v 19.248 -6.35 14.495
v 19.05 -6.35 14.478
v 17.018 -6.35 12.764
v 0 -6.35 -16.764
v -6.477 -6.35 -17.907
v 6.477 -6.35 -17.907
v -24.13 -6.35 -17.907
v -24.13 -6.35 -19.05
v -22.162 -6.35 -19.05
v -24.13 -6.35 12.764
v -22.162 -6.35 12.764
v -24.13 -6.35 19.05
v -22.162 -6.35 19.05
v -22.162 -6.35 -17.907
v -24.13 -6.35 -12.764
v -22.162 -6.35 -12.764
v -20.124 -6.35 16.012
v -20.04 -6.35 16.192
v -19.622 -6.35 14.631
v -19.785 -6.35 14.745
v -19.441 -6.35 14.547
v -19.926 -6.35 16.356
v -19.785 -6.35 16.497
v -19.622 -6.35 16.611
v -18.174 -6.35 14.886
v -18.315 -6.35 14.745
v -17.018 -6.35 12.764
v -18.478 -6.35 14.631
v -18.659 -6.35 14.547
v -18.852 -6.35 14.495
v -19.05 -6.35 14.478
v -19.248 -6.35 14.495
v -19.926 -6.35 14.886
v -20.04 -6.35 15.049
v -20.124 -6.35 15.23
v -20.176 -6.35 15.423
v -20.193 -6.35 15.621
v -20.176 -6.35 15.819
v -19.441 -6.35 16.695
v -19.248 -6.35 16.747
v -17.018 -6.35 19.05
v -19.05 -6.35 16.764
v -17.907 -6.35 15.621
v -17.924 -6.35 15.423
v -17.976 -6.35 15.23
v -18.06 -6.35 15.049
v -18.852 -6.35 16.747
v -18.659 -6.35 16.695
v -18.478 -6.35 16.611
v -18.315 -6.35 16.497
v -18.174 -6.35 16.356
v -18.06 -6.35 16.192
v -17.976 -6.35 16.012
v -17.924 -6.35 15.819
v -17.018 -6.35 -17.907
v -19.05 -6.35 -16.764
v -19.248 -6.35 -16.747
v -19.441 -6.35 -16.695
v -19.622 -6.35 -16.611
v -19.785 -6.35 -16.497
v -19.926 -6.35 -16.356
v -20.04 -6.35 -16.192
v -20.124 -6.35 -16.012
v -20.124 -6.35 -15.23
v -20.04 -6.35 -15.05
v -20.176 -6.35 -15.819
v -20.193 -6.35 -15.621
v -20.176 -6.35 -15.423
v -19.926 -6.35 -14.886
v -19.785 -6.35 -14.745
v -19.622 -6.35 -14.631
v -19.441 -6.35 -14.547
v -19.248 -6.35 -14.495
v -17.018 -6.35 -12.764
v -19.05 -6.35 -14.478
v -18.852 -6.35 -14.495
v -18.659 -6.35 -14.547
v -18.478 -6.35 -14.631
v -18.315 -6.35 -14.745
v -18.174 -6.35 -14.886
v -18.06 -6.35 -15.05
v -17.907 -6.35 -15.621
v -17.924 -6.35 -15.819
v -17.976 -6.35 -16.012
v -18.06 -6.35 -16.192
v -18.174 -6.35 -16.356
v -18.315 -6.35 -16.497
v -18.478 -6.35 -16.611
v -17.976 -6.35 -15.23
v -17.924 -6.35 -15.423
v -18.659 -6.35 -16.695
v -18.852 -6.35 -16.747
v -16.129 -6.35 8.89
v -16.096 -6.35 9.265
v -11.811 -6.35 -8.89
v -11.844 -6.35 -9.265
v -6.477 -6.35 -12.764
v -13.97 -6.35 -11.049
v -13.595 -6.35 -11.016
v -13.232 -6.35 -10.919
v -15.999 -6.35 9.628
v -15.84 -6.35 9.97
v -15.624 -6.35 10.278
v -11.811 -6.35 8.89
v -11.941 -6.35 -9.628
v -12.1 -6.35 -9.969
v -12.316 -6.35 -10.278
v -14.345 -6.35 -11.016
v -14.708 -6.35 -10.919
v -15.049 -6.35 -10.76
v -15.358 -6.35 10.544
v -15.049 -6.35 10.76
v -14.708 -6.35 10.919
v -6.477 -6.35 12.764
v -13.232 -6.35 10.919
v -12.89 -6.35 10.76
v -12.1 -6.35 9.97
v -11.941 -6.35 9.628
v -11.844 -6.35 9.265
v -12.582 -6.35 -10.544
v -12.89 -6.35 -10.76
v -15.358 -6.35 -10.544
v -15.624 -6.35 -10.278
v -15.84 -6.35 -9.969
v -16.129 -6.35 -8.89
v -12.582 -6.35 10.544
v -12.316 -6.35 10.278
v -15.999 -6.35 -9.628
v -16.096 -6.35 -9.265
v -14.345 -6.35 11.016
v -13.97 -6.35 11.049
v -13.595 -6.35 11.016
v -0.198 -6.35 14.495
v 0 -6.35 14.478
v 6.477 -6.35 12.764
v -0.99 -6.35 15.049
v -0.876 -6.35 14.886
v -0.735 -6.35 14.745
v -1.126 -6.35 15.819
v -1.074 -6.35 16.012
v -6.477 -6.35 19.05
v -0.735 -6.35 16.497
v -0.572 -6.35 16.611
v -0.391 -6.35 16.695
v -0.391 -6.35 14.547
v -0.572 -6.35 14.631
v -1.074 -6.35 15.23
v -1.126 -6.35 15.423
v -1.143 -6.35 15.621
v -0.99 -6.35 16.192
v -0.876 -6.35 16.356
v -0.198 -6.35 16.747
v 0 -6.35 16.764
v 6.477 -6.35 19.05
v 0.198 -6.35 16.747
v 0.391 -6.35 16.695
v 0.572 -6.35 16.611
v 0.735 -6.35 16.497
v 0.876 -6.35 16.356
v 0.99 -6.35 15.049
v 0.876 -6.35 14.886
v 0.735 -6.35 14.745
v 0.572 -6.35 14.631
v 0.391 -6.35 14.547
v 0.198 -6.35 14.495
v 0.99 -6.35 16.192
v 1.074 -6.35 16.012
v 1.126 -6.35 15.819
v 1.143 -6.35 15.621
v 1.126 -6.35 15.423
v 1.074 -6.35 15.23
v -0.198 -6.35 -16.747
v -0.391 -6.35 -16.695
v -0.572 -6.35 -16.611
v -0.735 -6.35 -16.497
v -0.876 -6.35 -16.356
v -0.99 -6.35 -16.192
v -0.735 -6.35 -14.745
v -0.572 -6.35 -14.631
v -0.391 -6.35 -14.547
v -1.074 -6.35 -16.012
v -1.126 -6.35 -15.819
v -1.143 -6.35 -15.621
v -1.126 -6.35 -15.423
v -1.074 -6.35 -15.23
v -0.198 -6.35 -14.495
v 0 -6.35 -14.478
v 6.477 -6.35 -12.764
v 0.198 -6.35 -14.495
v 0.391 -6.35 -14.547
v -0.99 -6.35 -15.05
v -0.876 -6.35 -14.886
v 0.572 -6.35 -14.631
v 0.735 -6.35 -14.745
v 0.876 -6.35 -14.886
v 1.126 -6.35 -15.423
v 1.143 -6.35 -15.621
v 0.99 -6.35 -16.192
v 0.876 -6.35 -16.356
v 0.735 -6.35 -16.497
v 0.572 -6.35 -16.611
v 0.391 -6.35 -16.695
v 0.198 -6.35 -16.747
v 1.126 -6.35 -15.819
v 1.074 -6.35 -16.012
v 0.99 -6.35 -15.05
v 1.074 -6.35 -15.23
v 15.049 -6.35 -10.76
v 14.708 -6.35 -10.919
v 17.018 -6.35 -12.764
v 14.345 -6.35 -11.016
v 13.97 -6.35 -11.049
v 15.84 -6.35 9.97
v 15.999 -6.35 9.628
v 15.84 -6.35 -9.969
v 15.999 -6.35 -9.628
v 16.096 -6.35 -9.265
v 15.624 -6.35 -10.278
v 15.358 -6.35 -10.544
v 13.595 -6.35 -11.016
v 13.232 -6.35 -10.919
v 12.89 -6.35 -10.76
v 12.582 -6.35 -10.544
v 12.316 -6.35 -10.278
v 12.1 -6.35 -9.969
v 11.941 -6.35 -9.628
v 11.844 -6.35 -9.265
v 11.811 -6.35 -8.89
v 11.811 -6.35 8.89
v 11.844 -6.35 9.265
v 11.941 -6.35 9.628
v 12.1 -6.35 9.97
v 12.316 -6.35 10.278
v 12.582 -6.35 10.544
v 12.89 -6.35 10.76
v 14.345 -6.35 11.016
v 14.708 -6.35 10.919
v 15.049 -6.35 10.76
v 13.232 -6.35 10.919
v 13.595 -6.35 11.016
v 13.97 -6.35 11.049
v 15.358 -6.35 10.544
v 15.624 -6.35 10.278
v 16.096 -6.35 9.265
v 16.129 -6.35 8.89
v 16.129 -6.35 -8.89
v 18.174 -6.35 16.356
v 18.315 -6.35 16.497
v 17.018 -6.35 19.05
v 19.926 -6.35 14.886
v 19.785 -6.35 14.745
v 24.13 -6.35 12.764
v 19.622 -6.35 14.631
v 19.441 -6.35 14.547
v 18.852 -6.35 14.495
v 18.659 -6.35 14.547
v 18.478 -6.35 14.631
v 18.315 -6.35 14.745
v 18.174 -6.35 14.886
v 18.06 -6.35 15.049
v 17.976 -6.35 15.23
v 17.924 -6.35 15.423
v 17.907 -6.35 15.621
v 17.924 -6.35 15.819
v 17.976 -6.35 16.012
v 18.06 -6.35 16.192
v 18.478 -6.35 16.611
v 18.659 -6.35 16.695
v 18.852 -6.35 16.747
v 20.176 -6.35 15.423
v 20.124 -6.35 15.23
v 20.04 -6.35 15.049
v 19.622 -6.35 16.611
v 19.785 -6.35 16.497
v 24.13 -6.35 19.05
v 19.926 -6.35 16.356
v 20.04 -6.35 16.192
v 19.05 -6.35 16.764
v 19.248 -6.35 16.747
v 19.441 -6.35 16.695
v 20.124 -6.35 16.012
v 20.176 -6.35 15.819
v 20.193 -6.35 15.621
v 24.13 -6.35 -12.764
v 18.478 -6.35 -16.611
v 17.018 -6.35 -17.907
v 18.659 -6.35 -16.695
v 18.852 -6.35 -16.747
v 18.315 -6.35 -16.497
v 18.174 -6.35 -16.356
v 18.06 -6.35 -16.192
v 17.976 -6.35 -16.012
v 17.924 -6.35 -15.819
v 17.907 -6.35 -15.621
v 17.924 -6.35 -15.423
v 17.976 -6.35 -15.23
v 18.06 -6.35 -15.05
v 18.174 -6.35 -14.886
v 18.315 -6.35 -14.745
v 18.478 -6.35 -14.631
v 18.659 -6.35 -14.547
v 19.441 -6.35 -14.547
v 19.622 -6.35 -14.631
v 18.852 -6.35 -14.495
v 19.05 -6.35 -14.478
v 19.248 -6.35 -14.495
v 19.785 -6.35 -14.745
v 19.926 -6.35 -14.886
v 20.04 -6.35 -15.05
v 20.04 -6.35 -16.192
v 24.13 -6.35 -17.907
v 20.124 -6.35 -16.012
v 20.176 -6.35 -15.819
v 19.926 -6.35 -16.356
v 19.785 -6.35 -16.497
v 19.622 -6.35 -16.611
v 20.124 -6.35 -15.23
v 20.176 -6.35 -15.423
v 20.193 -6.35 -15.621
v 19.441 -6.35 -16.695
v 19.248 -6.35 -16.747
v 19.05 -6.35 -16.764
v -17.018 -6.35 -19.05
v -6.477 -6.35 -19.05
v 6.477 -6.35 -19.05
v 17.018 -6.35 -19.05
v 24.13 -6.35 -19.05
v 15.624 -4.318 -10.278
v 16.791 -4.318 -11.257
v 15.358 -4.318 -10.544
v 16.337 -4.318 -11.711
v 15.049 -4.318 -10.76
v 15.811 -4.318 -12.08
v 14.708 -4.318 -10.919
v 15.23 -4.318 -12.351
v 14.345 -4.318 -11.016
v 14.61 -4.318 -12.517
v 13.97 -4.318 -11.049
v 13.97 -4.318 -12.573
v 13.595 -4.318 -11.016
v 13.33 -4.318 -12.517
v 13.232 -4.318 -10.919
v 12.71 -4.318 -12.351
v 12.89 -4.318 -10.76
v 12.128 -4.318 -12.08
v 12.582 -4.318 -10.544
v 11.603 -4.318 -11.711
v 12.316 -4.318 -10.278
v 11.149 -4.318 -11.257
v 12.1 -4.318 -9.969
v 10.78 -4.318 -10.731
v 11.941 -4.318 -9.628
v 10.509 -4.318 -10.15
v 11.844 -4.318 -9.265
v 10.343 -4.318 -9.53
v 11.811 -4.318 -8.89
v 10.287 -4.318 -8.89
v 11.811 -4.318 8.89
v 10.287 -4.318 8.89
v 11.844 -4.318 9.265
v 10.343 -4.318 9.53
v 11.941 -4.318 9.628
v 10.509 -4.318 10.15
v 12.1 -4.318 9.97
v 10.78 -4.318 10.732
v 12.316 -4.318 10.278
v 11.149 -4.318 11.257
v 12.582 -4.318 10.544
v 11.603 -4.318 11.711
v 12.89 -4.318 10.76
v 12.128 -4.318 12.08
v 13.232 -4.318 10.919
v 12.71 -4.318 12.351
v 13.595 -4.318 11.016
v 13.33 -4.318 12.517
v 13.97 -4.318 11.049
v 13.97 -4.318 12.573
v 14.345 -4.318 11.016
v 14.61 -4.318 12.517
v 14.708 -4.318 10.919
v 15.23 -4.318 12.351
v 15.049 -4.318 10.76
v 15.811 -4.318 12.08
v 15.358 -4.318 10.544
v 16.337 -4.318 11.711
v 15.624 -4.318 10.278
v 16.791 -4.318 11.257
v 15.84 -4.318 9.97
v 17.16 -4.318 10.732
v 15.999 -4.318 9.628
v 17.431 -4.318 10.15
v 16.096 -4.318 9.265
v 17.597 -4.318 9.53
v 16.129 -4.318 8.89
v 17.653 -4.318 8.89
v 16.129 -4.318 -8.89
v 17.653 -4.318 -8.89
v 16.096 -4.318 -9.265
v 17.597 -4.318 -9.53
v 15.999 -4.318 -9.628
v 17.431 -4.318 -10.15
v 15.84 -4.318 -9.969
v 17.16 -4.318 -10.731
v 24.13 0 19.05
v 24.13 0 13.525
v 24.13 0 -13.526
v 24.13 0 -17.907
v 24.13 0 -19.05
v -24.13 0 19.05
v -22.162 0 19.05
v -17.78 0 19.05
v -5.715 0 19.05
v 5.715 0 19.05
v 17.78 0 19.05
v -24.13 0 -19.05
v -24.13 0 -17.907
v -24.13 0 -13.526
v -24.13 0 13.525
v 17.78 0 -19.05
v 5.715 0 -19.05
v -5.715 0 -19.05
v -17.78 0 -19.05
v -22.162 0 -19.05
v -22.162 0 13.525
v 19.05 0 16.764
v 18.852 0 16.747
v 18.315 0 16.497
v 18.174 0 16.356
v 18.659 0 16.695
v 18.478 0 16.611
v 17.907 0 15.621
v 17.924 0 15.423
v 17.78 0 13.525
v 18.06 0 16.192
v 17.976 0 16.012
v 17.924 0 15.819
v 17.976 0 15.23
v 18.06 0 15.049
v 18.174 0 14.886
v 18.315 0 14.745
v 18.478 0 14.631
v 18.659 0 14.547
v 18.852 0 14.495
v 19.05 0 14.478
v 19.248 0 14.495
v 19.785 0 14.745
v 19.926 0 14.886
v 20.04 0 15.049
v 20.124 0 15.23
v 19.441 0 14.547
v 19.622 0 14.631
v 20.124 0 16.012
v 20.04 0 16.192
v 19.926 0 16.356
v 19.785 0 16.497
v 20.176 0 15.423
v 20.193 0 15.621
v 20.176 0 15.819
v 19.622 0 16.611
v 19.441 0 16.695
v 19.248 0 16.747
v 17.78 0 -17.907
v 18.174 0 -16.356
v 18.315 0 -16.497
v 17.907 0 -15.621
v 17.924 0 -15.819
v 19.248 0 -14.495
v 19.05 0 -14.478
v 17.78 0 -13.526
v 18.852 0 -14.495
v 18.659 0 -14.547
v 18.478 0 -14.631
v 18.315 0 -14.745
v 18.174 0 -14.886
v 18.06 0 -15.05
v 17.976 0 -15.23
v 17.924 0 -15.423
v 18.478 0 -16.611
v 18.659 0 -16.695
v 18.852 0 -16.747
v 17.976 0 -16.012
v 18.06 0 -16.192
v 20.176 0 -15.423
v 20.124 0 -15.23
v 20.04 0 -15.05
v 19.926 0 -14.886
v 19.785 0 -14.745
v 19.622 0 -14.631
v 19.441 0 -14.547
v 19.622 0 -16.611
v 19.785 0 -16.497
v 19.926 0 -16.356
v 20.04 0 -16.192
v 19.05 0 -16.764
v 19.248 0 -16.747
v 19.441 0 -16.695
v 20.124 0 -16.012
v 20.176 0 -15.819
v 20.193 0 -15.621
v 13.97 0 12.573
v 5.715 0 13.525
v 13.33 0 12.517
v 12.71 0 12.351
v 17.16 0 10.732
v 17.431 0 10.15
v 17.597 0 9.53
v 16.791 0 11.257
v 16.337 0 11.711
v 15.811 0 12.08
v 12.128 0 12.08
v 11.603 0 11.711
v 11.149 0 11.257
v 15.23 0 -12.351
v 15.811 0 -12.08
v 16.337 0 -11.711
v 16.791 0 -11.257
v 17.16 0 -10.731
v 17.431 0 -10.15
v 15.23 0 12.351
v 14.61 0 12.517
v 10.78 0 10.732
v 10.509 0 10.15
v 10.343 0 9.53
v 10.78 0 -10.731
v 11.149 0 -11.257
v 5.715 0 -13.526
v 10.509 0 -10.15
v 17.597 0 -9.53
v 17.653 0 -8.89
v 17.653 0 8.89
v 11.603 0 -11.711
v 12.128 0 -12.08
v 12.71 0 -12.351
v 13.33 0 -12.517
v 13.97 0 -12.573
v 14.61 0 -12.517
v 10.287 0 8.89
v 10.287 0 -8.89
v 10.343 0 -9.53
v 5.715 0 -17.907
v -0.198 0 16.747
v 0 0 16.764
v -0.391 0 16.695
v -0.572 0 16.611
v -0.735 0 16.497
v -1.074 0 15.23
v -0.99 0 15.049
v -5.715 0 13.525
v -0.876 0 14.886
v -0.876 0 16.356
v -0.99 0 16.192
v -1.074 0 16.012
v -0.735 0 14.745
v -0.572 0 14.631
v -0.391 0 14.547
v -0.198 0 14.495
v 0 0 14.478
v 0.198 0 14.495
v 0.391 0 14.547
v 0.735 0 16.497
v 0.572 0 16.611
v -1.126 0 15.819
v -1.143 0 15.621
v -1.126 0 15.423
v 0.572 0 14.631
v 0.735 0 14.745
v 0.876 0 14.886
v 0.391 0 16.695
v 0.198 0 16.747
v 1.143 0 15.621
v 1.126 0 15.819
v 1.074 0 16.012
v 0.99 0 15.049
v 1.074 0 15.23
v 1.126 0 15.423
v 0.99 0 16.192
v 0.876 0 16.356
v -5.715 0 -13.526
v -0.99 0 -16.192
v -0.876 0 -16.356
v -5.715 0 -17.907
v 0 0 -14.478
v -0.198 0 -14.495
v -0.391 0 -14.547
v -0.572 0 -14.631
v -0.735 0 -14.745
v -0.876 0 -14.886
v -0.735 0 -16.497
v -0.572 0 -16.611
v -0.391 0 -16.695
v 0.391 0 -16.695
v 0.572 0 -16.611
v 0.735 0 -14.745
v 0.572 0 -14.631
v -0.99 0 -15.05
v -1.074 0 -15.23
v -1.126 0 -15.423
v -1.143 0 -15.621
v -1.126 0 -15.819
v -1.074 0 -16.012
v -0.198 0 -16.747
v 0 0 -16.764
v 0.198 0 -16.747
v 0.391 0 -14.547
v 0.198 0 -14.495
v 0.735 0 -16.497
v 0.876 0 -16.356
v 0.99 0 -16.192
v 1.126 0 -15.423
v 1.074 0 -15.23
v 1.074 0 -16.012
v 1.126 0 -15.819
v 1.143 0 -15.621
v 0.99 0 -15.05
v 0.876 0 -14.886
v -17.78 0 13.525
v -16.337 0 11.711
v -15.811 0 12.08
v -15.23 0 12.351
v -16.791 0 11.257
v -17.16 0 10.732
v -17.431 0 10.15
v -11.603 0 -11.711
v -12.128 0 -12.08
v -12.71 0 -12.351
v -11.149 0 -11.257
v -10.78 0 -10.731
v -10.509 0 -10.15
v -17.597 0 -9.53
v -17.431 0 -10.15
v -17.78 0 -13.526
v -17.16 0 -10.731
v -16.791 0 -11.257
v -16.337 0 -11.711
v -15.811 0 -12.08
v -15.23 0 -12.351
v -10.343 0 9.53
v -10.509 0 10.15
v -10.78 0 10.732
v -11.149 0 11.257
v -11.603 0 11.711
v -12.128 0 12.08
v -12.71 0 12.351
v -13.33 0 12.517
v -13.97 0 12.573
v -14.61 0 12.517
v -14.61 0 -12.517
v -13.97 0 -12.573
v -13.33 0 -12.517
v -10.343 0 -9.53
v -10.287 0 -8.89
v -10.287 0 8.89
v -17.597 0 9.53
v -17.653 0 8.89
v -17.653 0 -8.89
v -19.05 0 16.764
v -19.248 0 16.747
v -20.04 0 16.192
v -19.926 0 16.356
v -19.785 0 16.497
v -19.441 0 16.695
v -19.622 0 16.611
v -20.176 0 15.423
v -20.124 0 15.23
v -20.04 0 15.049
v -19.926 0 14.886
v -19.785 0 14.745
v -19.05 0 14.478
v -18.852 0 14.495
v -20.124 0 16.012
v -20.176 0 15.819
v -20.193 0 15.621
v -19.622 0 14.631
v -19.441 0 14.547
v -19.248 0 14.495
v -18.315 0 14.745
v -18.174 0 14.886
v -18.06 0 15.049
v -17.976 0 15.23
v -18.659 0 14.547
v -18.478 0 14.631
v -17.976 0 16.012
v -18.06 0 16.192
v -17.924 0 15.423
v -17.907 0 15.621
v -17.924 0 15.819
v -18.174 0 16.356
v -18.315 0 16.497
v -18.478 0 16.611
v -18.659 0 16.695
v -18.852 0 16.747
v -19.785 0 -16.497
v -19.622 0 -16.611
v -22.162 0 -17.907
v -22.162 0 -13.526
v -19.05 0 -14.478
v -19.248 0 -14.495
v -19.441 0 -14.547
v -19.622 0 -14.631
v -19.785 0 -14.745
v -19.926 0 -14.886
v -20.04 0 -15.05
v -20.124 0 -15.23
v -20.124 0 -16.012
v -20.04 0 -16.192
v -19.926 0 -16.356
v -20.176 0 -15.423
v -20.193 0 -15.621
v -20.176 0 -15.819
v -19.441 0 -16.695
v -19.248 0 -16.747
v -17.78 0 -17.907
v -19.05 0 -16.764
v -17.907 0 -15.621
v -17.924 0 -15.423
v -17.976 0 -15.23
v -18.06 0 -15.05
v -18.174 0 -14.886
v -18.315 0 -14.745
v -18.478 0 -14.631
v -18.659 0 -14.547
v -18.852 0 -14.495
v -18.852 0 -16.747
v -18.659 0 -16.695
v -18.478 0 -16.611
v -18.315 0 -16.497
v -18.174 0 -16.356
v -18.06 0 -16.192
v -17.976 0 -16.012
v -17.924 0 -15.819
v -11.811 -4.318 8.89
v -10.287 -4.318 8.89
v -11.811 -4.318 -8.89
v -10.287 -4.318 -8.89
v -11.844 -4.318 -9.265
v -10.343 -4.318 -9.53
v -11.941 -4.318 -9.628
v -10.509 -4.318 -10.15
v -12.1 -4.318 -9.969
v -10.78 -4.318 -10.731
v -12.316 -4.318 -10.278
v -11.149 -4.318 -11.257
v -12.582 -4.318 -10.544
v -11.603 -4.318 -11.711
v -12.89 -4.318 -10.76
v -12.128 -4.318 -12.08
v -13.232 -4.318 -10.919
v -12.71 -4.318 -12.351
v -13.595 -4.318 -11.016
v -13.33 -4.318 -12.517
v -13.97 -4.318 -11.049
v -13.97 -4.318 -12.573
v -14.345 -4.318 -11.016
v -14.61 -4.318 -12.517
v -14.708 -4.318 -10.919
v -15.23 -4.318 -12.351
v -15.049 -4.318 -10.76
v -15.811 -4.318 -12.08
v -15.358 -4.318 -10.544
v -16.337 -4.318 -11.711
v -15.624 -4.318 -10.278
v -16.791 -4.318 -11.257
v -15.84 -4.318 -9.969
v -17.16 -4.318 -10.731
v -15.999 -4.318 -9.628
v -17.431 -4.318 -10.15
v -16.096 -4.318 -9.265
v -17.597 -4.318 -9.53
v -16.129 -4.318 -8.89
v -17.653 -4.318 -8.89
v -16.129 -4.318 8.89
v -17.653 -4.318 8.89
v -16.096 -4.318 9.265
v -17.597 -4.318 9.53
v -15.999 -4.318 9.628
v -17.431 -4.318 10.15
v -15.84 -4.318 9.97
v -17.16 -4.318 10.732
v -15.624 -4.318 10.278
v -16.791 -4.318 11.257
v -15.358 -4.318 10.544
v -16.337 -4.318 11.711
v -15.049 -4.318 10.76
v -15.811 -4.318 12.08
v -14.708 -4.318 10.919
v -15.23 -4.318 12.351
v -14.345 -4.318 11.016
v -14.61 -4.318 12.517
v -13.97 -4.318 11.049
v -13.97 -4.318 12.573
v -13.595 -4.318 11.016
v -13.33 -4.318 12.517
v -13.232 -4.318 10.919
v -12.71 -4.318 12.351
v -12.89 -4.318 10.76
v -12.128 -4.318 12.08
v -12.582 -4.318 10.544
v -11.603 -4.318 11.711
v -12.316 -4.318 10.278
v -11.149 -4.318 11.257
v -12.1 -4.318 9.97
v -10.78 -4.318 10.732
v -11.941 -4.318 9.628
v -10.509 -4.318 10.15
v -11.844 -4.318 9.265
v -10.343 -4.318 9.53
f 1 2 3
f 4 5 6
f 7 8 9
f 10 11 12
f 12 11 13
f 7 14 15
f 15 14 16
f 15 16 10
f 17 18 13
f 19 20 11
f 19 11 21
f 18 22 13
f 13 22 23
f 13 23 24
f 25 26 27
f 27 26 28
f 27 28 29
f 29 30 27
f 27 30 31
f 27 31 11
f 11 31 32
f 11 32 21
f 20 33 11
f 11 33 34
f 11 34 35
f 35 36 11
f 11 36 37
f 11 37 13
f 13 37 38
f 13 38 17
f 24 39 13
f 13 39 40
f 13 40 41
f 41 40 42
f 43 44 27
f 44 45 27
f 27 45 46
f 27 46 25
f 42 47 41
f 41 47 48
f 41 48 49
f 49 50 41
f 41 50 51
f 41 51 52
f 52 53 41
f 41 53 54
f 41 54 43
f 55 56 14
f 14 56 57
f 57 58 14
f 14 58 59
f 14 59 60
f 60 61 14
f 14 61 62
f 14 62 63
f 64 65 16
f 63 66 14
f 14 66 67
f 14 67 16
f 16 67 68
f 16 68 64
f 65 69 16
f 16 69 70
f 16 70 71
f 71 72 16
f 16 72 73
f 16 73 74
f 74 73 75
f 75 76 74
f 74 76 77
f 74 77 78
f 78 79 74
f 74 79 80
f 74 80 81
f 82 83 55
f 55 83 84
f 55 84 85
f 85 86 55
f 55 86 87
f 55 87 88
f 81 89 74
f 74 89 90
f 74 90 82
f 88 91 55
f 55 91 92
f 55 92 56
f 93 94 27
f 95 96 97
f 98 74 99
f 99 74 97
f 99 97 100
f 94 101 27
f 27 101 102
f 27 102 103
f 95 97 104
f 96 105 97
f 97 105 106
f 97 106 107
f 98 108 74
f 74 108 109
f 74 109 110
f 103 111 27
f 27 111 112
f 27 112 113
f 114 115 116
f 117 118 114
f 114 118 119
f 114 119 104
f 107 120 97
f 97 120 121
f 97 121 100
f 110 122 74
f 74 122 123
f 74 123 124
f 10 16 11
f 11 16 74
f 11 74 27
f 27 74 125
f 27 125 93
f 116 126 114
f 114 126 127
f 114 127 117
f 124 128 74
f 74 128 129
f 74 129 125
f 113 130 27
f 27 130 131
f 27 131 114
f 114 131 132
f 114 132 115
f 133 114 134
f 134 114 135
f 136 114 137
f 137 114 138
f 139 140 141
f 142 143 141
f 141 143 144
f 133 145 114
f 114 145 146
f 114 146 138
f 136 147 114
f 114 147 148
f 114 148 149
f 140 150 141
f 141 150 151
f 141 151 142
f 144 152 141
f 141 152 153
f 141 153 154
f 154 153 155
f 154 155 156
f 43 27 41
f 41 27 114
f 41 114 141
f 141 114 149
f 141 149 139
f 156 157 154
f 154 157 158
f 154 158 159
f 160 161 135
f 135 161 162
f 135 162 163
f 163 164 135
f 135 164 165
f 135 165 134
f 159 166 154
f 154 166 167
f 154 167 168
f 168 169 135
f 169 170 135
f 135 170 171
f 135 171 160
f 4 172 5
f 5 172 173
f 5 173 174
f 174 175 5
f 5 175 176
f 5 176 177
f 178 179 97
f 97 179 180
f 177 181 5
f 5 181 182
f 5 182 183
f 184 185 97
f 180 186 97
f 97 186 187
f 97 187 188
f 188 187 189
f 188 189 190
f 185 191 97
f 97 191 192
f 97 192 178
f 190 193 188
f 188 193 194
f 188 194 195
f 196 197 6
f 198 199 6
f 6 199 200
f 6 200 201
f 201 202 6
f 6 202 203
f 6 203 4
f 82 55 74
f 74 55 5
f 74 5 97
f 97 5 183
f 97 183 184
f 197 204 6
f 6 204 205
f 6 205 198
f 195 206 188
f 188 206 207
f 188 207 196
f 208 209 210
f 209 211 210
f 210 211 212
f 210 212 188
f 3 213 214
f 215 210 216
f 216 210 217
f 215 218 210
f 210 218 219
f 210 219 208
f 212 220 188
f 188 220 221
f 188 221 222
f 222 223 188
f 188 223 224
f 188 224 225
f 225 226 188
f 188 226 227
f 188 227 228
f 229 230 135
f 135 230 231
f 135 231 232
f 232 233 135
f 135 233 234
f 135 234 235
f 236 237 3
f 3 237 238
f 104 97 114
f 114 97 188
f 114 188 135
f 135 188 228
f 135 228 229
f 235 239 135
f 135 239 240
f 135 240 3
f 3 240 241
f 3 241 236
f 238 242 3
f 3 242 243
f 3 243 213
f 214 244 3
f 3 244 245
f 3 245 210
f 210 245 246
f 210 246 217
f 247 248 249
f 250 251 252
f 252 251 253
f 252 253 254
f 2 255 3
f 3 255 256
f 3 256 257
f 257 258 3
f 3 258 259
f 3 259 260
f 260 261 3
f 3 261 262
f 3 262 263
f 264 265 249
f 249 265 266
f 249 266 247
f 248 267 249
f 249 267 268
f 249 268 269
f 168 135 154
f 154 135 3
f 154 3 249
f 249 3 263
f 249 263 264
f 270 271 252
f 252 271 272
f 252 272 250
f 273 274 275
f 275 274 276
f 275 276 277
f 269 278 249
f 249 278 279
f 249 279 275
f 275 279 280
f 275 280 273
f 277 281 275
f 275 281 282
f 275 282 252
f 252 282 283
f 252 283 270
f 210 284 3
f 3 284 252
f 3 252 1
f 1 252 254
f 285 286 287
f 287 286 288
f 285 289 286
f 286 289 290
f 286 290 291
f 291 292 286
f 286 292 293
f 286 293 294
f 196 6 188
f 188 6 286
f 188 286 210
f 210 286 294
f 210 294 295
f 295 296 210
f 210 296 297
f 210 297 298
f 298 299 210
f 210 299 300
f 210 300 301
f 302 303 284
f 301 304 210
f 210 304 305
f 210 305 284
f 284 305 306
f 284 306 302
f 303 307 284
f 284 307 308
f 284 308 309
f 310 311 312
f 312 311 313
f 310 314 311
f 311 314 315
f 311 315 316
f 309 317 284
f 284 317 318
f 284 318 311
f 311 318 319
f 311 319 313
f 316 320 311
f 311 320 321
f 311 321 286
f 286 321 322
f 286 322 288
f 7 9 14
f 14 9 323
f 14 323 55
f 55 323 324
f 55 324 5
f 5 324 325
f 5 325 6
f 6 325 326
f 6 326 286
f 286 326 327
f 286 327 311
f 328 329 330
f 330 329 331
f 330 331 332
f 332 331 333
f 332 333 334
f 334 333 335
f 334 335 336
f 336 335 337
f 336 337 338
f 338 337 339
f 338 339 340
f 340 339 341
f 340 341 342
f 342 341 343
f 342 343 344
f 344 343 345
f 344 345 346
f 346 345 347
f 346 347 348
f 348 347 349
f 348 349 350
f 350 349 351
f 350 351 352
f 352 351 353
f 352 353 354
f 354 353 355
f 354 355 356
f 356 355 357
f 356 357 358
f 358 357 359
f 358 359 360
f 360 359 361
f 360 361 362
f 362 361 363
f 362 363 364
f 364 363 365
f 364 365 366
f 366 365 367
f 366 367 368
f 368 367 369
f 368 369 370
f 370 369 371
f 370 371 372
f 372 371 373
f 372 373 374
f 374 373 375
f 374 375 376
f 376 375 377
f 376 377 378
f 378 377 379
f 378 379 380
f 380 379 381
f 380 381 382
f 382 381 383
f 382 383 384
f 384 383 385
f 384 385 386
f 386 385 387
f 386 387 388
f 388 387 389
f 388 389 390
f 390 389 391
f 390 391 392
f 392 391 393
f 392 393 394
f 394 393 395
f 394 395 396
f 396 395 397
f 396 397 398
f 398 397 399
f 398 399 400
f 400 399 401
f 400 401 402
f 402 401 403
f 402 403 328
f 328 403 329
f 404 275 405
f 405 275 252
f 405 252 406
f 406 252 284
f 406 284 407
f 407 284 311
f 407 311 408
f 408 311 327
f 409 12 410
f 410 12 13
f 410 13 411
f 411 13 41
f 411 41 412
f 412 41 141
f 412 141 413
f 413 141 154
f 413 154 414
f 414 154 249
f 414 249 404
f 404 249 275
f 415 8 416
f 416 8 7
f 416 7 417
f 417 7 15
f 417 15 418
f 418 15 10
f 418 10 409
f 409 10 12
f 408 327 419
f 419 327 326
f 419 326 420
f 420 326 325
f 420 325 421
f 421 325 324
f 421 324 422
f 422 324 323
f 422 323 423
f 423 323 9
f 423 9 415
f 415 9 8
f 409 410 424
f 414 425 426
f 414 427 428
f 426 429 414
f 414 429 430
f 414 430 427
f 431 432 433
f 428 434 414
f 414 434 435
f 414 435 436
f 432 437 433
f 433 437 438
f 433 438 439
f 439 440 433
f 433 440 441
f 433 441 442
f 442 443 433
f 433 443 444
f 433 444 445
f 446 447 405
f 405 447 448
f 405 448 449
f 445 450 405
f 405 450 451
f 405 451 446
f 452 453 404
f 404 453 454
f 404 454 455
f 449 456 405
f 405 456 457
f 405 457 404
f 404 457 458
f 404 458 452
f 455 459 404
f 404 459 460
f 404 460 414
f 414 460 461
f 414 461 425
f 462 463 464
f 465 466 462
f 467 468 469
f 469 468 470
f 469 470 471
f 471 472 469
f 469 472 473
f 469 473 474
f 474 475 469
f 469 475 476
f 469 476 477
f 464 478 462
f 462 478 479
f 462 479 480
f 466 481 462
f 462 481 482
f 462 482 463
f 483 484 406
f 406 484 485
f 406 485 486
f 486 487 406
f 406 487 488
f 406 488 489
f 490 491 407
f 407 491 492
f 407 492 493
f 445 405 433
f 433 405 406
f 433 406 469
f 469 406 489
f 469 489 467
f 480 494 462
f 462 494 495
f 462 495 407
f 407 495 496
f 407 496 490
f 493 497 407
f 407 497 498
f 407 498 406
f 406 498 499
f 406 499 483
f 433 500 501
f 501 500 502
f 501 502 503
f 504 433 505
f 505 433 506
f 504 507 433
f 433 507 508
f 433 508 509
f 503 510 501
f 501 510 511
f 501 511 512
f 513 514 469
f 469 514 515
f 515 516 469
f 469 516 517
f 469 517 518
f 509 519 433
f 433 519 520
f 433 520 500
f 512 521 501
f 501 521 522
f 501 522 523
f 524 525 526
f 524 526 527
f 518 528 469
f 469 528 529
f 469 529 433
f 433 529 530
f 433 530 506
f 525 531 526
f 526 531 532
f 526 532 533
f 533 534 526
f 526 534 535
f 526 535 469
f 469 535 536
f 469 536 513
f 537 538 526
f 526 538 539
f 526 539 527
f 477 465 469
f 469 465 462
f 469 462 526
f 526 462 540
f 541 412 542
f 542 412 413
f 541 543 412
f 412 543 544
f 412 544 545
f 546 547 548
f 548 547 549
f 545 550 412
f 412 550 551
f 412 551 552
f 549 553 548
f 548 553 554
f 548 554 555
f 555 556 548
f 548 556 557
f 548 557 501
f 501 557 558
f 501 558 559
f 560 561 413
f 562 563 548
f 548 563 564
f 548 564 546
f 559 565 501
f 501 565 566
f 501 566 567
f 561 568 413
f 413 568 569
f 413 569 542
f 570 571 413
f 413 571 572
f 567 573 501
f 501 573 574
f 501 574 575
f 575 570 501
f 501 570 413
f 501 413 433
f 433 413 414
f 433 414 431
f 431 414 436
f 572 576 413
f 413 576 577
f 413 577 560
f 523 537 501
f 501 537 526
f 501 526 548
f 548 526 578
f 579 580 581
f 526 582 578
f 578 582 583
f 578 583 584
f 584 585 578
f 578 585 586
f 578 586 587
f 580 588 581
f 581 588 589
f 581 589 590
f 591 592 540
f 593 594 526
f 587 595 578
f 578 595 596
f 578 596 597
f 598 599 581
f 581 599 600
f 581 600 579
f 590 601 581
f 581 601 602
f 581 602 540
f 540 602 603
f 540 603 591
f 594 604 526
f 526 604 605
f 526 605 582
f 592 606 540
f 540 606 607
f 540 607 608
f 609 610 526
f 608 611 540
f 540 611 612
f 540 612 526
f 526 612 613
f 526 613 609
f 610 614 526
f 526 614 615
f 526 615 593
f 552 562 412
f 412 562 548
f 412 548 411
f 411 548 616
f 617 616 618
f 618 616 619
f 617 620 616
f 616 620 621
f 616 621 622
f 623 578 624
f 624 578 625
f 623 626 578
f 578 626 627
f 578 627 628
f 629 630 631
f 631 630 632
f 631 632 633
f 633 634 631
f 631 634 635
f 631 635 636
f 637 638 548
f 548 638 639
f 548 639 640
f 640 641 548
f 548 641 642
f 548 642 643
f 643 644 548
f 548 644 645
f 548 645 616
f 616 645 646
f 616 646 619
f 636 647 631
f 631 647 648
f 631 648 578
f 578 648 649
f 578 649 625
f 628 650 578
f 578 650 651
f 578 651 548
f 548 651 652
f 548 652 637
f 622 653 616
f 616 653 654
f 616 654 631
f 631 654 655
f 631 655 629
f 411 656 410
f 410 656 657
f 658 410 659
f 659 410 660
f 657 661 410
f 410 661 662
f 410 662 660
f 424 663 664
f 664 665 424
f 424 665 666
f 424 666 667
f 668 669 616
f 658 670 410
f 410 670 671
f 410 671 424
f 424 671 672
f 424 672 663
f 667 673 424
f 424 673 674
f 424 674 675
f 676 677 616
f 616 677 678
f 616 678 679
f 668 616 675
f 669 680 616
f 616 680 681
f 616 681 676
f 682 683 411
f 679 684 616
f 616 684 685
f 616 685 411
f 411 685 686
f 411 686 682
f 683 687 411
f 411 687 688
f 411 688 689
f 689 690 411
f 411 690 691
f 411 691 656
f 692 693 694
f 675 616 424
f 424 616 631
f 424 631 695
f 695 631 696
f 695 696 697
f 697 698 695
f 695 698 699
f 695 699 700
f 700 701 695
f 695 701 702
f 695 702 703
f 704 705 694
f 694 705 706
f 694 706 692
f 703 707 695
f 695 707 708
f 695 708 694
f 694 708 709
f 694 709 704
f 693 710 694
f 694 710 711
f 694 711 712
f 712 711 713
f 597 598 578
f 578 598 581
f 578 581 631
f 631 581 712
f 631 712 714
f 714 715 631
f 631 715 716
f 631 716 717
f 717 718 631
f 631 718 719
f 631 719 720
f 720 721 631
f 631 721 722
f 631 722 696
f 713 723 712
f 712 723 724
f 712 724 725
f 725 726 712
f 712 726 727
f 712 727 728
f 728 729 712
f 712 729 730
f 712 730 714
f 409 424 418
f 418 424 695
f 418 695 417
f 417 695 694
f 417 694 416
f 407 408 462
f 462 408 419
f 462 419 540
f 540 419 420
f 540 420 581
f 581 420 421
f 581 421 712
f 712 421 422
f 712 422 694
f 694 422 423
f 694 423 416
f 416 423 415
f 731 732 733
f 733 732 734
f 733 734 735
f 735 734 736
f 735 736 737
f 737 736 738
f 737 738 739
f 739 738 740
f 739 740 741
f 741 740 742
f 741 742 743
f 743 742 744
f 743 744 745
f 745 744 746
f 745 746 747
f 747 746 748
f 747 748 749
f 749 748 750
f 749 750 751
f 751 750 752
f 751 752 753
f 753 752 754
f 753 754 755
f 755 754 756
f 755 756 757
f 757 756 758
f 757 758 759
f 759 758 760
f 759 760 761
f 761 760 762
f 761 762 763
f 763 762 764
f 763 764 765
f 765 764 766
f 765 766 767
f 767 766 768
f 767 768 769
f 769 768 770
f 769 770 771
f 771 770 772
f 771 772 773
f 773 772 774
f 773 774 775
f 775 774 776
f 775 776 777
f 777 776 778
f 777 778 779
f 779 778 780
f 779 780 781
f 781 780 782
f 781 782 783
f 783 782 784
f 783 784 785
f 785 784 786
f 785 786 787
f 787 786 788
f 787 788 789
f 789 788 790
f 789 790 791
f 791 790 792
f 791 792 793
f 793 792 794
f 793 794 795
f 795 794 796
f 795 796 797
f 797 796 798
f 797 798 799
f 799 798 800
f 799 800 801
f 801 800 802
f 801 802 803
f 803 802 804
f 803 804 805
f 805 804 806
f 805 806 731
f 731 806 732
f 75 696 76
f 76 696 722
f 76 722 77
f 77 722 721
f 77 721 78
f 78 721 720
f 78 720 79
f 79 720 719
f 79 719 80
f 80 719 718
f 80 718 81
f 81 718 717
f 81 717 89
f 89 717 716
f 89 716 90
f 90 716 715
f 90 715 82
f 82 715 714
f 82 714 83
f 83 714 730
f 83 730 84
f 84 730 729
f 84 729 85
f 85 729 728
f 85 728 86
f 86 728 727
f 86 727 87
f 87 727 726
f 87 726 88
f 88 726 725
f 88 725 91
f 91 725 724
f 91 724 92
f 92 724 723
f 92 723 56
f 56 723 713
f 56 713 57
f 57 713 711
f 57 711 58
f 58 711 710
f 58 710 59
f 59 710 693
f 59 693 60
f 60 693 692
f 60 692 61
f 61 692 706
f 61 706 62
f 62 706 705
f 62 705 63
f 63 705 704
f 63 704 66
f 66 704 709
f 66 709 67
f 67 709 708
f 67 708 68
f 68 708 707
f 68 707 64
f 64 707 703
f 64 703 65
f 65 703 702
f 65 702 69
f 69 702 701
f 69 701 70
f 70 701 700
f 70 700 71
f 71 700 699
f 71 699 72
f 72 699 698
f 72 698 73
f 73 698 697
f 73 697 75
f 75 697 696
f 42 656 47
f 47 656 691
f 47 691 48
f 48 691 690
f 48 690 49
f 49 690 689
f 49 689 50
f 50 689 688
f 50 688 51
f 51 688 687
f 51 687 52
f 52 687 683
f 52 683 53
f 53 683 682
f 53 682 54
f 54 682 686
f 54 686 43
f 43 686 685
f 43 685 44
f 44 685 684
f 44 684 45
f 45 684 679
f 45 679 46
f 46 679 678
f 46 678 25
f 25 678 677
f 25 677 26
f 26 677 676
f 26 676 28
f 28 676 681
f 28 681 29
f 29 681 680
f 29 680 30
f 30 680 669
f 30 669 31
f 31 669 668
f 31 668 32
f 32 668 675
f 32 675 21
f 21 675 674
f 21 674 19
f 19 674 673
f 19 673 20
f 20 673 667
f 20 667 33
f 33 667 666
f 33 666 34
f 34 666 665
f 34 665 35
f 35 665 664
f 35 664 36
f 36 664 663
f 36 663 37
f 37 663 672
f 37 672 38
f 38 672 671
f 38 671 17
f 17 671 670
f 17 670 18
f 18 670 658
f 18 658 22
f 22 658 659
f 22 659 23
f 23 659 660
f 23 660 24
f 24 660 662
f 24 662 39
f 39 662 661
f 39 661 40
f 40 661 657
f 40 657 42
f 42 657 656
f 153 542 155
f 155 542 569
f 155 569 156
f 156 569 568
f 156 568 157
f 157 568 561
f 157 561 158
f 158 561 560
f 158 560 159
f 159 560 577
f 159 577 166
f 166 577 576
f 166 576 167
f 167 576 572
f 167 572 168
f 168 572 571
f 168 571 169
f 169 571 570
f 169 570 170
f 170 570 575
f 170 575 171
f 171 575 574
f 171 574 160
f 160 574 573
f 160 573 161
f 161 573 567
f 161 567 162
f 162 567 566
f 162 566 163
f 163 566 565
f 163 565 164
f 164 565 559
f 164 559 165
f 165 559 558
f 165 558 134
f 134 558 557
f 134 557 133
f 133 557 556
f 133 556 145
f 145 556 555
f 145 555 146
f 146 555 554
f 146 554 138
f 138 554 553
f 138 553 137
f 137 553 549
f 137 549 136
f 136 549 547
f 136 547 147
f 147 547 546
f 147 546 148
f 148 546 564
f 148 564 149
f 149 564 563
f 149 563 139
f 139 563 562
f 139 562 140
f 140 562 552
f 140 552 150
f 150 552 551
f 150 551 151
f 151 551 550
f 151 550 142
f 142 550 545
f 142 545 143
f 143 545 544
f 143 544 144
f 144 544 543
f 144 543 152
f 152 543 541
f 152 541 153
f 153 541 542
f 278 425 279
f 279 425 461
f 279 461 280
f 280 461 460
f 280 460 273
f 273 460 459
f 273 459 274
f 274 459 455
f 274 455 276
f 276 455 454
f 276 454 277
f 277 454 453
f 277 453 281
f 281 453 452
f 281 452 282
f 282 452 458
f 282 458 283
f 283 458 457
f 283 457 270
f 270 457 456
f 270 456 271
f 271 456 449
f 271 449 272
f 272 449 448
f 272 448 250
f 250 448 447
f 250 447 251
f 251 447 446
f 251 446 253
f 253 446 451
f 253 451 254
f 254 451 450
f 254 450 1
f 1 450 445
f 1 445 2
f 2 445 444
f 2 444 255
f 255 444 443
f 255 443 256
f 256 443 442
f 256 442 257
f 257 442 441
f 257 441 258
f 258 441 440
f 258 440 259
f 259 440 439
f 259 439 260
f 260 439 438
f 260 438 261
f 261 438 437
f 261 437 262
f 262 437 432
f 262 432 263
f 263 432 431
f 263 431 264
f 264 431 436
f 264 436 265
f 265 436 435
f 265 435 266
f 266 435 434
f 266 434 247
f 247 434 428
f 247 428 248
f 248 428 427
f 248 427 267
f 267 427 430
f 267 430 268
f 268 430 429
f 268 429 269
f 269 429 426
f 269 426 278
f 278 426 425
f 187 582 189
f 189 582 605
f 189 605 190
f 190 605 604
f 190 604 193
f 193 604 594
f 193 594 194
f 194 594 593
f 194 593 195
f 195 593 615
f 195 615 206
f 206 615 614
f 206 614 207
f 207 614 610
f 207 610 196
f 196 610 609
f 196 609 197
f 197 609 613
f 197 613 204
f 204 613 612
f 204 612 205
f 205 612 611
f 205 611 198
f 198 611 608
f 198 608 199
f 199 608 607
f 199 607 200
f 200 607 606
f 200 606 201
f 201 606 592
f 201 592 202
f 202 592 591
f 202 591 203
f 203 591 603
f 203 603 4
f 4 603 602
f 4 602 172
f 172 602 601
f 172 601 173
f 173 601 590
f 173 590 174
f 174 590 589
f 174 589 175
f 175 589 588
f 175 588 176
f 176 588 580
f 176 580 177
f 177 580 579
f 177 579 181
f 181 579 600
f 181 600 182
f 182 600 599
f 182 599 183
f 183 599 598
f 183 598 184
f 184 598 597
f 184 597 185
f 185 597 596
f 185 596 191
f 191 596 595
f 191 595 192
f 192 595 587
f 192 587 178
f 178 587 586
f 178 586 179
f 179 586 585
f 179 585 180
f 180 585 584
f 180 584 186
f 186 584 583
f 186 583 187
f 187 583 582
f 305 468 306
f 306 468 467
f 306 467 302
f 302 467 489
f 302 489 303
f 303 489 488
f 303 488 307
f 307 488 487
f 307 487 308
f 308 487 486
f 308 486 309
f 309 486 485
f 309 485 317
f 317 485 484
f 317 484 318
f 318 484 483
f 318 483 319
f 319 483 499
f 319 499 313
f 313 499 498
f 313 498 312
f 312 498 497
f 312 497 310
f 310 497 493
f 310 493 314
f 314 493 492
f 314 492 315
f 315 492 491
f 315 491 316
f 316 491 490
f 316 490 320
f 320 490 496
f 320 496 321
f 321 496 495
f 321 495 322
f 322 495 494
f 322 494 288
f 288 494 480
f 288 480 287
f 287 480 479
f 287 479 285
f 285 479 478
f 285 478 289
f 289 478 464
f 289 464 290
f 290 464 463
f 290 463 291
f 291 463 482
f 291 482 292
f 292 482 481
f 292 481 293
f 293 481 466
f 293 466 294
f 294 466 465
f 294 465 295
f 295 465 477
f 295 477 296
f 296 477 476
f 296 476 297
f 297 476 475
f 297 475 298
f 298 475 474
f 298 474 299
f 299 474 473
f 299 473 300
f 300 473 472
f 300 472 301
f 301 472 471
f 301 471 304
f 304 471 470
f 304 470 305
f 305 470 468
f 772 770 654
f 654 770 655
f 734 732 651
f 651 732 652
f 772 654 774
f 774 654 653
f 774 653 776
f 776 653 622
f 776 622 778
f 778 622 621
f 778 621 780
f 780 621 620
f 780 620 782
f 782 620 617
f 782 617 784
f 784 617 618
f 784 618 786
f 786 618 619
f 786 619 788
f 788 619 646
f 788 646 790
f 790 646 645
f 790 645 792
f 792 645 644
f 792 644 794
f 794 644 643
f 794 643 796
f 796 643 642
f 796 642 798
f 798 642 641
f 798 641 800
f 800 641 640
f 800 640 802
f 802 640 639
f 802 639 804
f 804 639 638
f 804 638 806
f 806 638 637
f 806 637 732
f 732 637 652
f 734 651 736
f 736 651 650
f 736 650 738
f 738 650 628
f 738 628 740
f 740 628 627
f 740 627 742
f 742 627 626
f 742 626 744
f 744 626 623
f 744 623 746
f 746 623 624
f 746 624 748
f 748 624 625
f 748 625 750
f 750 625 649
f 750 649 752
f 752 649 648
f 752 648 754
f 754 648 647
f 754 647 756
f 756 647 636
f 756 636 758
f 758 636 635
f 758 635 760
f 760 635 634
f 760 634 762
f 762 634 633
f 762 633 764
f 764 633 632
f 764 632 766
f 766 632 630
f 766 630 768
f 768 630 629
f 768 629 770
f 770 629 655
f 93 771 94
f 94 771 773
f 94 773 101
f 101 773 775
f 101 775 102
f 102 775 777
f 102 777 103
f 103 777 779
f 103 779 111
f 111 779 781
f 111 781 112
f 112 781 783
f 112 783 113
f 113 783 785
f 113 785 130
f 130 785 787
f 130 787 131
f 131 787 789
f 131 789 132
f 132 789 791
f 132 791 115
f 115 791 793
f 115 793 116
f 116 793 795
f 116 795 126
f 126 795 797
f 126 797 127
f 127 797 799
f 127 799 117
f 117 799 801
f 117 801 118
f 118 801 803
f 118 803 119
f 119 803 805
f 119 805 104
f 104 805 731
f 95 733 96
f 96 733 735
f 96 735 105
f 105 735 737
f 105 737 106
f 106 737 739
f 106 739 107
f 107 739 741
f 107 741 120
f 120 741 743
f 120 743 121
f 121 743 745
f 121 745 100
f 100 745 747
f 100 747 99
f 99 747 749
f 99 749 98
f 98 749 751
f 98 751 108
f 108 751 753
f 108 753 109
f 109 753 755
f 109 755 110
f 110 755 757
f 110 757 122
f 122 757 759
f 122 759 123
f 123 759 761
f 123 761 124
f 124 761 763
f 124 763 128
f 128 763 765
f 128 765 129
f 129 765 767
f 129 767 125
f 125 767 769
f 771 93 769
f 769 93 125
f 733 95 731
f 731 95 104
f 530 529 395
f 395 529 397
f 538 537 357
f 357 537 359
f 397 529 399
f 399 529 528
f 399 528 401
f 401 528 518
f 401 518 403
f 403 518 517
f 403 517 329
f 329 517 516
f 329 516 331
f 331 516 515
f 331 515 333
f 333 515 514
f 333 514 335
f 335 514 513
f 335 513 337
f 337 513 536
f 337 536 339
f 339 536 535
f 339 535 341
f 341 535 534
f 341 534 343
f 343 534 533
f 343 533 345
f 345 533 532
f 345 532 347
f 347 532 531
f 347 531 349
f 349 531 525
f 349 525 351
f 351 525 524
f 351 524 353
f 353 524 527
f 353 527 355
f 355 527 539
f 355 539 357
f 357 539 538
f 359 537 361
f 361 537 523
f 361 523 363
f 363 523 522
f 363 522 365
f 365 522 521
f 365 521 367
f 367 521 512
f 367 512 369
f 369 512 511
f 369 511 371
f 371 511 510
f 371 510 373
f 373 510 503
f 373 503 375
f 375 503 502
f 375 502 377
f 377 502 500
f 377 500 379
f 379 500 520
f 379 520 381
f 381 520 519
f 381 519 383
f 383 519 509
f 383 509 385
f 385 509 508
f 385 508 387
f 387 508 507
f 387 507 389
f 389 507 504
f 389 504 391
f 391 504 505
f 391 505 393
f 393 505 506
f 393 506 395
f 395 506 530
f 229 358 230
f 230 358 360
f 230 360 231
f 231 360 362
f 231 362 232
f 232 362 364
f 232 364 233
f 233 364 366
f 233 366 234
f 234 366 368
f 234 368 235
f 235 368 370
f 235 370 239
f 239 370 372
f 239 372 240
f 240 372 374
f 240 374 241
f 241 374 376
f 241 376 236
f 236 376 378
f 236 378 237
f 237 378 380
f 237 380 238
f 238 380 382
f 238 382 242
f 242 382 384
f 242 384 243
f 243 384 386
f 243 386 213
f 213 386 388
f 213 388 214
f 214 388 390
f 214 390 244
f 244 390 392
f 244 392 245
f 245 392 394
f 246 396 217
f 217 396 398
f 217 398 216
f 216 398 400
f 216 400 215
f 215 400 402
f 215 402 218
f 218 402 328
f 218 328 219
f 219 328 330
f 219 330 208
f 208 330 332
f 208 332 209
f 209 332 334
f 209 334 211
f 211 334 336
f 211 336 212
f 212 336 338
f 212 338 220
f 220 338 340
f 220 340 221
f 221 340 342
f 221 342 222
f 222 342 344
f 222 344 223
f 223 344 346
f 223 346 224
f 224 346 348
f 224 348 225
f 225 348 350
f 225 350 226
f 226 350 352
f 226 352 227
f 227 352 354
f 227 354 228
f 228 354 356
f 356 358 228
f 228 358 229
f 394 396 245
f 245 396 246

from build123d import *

# Parameters (mm, degrees)
SKETCH1_W           = 48.26
SKETCH1_H           = 38.1
BOSS_EXTRUDE1_DEPTH = 6.35
SKETCH2_R           = 3.683
CUT_EXTRUDE1_DEPTH  = 4.318
SKETCH3_R           = 2.159
CUT_EXTRUDE2_DEPTH  = 4.318
SKETCH4_R           = 1.143
CUT_EXTRUDE3_DEPTH  = 9.398
LPATTERN1_COUNT     = 3
LPATTERN1_PITCH     = 19.05
CUT_EXTRUDE7_DEPTH  = 4.318
CUT_EXTRUDE8_DEPTH  = 10.16


with BuildPart() as part:
    # Sketch1 → Boss-Extrude1 (new body)
    with BuildSketch(Plane(origin=(0, 0, 0), x_dir=(1, 0, 0), z_dir=(0, 1, 0))):
        Rectangle(SKETCH1_W, SKETCH1_H)
    extrude(amount=-BOSS_EXTRUDE1_DEPTH)

    # Sketch2 → Cut-Extrude1 (cut)
    with BuildSketch(Plane(origin=(0, 0, 0), x_dir=(1, 0, 0), z_dir=(0, 1, 0))):
        with Locations((-13.97, 0)):
            Circle(SKETCH2_R)
    cut_extrude1 = extrude(amount=-CUT_EXTRUDE1_DEPTH, mode=Mode.SUBTRACT)

    # Sketch3 → Cut-Extrude2 (cut)
    with BuildSketch(Plane(origin=(0, -4.318, 0), x_dir=(1, 0, 0), z_dir=(0, 1, 0))):
        with Locations((-13.97, 0)):
            Circle(SKETCH3_R)
    cut_extrude2 = extrude(amount=-CUT_EXTRUDE2_DEPTH, mode=Mode.SUBTRACT)

    # Sketch4 → Cut-Extrude3 (cut)
    with BuildSketch(Plane(origin=(0, 0, 0), x_dir=(1, 0, 0), z_dir=(0, 1, 0))):
        with Locations((-19.05, 15.621)):
            Circle(SKETCH4_R)
        with Locations((-19.05, -15.621)):
            Circle(SKETCH4_R)
    cut_extrude3 = extrude(amount=-CUT_EXTRUDE3_DEPTH, mode=Mode.SUBTRACT)

    # LPattern1: Cut-Extrude3 ×3
    with Locations(*[(i * LPATTERN1_PITCH, 0, 0) for i in range(1, LPATTERN1_COUNT)]):
        add(cut_extrude3, mode=Mode.SUBTRACT)

    # Mirror1: Cut-Extrude1, Cut-Extrude2 across plane
    add(cut_extrude1.mirror(Plane(origin=(0, 0, 0), x_dir=(0, 0, 1), z_dir=(1, 0, 0))), mode=Mode.SUBTRACT)
    add(cut_extrude2.mirror(Plane(origin=(0, 0, 0), x_dir=(0, 0, 1), z_dir=(1, 0, 0))), mode=Mode.SUBTRACT)

    # Sketch6 → Cut-Extrude7 (cut)
    with BuildSketch(Plane(origin=(0, 0, 0), x_dir=(1, 0, 0), z_dir=(0, 1, 0))):
        with BuildLine():
            Line((-17.653, -8.89), (-17.653, 8.89))
            ThreePointArc((-17.653, 8.89), (-13.97, 12.573), (-10.287, 8.89))
            Line((-10.287, 8.89), (-10.287, -8.89))
            ThreePointArc((-10.287, -8.89), (-13.97, -12.573), (-17.653, -8.89))
        make_face()
    cut_extrude7 = extrude(amount=-CUT_EXTRUDE7_DEPTH, mode=Mode.SUBTRACT)

    # Sketch7 → Cut-Extrude8 (cut)
    with BuildSketch(Plane(origin=(0, -4.318, 0), x_dir=(1, 0, 0), z_dir=(0, 1, 0))):
        with BuildLine():
            Line((-16.129, -8.89), (-16.129, 8.89))
            ThreePointArc((-16.129, 8.89), (-13.97, 11.049), (-11.811, 8.89))
            Line((-11.811, 8.89), (-11.811, -8.89))
            ThreePointArc((-11.811, -8.89), (-13.97, -11.049), (-16.129, -8.89))
        make_face()
    cut_extrude8 = extrude(amount=-CUT_EXTRUDE8_DEPTH, mode=Mode.SUBTRACT)

    # Mirror2: Cut-Extrude7, Cut-Extrude8 across plane
    add(cut_extrude7.mirror(Plane(origin=(0, 0, 0), x_dir=(0, 0, 1), z_dir=(1, 0, 0))), mode=Mode.SUBTRACT)
    add(cut_extrude8.mirror(Plane(origin=(0, 0, 0), x_dir=(0, 0, 1), z_dir=(1, 0, 0))), mode=Mode.SUBTRACT)


solid = part.part
